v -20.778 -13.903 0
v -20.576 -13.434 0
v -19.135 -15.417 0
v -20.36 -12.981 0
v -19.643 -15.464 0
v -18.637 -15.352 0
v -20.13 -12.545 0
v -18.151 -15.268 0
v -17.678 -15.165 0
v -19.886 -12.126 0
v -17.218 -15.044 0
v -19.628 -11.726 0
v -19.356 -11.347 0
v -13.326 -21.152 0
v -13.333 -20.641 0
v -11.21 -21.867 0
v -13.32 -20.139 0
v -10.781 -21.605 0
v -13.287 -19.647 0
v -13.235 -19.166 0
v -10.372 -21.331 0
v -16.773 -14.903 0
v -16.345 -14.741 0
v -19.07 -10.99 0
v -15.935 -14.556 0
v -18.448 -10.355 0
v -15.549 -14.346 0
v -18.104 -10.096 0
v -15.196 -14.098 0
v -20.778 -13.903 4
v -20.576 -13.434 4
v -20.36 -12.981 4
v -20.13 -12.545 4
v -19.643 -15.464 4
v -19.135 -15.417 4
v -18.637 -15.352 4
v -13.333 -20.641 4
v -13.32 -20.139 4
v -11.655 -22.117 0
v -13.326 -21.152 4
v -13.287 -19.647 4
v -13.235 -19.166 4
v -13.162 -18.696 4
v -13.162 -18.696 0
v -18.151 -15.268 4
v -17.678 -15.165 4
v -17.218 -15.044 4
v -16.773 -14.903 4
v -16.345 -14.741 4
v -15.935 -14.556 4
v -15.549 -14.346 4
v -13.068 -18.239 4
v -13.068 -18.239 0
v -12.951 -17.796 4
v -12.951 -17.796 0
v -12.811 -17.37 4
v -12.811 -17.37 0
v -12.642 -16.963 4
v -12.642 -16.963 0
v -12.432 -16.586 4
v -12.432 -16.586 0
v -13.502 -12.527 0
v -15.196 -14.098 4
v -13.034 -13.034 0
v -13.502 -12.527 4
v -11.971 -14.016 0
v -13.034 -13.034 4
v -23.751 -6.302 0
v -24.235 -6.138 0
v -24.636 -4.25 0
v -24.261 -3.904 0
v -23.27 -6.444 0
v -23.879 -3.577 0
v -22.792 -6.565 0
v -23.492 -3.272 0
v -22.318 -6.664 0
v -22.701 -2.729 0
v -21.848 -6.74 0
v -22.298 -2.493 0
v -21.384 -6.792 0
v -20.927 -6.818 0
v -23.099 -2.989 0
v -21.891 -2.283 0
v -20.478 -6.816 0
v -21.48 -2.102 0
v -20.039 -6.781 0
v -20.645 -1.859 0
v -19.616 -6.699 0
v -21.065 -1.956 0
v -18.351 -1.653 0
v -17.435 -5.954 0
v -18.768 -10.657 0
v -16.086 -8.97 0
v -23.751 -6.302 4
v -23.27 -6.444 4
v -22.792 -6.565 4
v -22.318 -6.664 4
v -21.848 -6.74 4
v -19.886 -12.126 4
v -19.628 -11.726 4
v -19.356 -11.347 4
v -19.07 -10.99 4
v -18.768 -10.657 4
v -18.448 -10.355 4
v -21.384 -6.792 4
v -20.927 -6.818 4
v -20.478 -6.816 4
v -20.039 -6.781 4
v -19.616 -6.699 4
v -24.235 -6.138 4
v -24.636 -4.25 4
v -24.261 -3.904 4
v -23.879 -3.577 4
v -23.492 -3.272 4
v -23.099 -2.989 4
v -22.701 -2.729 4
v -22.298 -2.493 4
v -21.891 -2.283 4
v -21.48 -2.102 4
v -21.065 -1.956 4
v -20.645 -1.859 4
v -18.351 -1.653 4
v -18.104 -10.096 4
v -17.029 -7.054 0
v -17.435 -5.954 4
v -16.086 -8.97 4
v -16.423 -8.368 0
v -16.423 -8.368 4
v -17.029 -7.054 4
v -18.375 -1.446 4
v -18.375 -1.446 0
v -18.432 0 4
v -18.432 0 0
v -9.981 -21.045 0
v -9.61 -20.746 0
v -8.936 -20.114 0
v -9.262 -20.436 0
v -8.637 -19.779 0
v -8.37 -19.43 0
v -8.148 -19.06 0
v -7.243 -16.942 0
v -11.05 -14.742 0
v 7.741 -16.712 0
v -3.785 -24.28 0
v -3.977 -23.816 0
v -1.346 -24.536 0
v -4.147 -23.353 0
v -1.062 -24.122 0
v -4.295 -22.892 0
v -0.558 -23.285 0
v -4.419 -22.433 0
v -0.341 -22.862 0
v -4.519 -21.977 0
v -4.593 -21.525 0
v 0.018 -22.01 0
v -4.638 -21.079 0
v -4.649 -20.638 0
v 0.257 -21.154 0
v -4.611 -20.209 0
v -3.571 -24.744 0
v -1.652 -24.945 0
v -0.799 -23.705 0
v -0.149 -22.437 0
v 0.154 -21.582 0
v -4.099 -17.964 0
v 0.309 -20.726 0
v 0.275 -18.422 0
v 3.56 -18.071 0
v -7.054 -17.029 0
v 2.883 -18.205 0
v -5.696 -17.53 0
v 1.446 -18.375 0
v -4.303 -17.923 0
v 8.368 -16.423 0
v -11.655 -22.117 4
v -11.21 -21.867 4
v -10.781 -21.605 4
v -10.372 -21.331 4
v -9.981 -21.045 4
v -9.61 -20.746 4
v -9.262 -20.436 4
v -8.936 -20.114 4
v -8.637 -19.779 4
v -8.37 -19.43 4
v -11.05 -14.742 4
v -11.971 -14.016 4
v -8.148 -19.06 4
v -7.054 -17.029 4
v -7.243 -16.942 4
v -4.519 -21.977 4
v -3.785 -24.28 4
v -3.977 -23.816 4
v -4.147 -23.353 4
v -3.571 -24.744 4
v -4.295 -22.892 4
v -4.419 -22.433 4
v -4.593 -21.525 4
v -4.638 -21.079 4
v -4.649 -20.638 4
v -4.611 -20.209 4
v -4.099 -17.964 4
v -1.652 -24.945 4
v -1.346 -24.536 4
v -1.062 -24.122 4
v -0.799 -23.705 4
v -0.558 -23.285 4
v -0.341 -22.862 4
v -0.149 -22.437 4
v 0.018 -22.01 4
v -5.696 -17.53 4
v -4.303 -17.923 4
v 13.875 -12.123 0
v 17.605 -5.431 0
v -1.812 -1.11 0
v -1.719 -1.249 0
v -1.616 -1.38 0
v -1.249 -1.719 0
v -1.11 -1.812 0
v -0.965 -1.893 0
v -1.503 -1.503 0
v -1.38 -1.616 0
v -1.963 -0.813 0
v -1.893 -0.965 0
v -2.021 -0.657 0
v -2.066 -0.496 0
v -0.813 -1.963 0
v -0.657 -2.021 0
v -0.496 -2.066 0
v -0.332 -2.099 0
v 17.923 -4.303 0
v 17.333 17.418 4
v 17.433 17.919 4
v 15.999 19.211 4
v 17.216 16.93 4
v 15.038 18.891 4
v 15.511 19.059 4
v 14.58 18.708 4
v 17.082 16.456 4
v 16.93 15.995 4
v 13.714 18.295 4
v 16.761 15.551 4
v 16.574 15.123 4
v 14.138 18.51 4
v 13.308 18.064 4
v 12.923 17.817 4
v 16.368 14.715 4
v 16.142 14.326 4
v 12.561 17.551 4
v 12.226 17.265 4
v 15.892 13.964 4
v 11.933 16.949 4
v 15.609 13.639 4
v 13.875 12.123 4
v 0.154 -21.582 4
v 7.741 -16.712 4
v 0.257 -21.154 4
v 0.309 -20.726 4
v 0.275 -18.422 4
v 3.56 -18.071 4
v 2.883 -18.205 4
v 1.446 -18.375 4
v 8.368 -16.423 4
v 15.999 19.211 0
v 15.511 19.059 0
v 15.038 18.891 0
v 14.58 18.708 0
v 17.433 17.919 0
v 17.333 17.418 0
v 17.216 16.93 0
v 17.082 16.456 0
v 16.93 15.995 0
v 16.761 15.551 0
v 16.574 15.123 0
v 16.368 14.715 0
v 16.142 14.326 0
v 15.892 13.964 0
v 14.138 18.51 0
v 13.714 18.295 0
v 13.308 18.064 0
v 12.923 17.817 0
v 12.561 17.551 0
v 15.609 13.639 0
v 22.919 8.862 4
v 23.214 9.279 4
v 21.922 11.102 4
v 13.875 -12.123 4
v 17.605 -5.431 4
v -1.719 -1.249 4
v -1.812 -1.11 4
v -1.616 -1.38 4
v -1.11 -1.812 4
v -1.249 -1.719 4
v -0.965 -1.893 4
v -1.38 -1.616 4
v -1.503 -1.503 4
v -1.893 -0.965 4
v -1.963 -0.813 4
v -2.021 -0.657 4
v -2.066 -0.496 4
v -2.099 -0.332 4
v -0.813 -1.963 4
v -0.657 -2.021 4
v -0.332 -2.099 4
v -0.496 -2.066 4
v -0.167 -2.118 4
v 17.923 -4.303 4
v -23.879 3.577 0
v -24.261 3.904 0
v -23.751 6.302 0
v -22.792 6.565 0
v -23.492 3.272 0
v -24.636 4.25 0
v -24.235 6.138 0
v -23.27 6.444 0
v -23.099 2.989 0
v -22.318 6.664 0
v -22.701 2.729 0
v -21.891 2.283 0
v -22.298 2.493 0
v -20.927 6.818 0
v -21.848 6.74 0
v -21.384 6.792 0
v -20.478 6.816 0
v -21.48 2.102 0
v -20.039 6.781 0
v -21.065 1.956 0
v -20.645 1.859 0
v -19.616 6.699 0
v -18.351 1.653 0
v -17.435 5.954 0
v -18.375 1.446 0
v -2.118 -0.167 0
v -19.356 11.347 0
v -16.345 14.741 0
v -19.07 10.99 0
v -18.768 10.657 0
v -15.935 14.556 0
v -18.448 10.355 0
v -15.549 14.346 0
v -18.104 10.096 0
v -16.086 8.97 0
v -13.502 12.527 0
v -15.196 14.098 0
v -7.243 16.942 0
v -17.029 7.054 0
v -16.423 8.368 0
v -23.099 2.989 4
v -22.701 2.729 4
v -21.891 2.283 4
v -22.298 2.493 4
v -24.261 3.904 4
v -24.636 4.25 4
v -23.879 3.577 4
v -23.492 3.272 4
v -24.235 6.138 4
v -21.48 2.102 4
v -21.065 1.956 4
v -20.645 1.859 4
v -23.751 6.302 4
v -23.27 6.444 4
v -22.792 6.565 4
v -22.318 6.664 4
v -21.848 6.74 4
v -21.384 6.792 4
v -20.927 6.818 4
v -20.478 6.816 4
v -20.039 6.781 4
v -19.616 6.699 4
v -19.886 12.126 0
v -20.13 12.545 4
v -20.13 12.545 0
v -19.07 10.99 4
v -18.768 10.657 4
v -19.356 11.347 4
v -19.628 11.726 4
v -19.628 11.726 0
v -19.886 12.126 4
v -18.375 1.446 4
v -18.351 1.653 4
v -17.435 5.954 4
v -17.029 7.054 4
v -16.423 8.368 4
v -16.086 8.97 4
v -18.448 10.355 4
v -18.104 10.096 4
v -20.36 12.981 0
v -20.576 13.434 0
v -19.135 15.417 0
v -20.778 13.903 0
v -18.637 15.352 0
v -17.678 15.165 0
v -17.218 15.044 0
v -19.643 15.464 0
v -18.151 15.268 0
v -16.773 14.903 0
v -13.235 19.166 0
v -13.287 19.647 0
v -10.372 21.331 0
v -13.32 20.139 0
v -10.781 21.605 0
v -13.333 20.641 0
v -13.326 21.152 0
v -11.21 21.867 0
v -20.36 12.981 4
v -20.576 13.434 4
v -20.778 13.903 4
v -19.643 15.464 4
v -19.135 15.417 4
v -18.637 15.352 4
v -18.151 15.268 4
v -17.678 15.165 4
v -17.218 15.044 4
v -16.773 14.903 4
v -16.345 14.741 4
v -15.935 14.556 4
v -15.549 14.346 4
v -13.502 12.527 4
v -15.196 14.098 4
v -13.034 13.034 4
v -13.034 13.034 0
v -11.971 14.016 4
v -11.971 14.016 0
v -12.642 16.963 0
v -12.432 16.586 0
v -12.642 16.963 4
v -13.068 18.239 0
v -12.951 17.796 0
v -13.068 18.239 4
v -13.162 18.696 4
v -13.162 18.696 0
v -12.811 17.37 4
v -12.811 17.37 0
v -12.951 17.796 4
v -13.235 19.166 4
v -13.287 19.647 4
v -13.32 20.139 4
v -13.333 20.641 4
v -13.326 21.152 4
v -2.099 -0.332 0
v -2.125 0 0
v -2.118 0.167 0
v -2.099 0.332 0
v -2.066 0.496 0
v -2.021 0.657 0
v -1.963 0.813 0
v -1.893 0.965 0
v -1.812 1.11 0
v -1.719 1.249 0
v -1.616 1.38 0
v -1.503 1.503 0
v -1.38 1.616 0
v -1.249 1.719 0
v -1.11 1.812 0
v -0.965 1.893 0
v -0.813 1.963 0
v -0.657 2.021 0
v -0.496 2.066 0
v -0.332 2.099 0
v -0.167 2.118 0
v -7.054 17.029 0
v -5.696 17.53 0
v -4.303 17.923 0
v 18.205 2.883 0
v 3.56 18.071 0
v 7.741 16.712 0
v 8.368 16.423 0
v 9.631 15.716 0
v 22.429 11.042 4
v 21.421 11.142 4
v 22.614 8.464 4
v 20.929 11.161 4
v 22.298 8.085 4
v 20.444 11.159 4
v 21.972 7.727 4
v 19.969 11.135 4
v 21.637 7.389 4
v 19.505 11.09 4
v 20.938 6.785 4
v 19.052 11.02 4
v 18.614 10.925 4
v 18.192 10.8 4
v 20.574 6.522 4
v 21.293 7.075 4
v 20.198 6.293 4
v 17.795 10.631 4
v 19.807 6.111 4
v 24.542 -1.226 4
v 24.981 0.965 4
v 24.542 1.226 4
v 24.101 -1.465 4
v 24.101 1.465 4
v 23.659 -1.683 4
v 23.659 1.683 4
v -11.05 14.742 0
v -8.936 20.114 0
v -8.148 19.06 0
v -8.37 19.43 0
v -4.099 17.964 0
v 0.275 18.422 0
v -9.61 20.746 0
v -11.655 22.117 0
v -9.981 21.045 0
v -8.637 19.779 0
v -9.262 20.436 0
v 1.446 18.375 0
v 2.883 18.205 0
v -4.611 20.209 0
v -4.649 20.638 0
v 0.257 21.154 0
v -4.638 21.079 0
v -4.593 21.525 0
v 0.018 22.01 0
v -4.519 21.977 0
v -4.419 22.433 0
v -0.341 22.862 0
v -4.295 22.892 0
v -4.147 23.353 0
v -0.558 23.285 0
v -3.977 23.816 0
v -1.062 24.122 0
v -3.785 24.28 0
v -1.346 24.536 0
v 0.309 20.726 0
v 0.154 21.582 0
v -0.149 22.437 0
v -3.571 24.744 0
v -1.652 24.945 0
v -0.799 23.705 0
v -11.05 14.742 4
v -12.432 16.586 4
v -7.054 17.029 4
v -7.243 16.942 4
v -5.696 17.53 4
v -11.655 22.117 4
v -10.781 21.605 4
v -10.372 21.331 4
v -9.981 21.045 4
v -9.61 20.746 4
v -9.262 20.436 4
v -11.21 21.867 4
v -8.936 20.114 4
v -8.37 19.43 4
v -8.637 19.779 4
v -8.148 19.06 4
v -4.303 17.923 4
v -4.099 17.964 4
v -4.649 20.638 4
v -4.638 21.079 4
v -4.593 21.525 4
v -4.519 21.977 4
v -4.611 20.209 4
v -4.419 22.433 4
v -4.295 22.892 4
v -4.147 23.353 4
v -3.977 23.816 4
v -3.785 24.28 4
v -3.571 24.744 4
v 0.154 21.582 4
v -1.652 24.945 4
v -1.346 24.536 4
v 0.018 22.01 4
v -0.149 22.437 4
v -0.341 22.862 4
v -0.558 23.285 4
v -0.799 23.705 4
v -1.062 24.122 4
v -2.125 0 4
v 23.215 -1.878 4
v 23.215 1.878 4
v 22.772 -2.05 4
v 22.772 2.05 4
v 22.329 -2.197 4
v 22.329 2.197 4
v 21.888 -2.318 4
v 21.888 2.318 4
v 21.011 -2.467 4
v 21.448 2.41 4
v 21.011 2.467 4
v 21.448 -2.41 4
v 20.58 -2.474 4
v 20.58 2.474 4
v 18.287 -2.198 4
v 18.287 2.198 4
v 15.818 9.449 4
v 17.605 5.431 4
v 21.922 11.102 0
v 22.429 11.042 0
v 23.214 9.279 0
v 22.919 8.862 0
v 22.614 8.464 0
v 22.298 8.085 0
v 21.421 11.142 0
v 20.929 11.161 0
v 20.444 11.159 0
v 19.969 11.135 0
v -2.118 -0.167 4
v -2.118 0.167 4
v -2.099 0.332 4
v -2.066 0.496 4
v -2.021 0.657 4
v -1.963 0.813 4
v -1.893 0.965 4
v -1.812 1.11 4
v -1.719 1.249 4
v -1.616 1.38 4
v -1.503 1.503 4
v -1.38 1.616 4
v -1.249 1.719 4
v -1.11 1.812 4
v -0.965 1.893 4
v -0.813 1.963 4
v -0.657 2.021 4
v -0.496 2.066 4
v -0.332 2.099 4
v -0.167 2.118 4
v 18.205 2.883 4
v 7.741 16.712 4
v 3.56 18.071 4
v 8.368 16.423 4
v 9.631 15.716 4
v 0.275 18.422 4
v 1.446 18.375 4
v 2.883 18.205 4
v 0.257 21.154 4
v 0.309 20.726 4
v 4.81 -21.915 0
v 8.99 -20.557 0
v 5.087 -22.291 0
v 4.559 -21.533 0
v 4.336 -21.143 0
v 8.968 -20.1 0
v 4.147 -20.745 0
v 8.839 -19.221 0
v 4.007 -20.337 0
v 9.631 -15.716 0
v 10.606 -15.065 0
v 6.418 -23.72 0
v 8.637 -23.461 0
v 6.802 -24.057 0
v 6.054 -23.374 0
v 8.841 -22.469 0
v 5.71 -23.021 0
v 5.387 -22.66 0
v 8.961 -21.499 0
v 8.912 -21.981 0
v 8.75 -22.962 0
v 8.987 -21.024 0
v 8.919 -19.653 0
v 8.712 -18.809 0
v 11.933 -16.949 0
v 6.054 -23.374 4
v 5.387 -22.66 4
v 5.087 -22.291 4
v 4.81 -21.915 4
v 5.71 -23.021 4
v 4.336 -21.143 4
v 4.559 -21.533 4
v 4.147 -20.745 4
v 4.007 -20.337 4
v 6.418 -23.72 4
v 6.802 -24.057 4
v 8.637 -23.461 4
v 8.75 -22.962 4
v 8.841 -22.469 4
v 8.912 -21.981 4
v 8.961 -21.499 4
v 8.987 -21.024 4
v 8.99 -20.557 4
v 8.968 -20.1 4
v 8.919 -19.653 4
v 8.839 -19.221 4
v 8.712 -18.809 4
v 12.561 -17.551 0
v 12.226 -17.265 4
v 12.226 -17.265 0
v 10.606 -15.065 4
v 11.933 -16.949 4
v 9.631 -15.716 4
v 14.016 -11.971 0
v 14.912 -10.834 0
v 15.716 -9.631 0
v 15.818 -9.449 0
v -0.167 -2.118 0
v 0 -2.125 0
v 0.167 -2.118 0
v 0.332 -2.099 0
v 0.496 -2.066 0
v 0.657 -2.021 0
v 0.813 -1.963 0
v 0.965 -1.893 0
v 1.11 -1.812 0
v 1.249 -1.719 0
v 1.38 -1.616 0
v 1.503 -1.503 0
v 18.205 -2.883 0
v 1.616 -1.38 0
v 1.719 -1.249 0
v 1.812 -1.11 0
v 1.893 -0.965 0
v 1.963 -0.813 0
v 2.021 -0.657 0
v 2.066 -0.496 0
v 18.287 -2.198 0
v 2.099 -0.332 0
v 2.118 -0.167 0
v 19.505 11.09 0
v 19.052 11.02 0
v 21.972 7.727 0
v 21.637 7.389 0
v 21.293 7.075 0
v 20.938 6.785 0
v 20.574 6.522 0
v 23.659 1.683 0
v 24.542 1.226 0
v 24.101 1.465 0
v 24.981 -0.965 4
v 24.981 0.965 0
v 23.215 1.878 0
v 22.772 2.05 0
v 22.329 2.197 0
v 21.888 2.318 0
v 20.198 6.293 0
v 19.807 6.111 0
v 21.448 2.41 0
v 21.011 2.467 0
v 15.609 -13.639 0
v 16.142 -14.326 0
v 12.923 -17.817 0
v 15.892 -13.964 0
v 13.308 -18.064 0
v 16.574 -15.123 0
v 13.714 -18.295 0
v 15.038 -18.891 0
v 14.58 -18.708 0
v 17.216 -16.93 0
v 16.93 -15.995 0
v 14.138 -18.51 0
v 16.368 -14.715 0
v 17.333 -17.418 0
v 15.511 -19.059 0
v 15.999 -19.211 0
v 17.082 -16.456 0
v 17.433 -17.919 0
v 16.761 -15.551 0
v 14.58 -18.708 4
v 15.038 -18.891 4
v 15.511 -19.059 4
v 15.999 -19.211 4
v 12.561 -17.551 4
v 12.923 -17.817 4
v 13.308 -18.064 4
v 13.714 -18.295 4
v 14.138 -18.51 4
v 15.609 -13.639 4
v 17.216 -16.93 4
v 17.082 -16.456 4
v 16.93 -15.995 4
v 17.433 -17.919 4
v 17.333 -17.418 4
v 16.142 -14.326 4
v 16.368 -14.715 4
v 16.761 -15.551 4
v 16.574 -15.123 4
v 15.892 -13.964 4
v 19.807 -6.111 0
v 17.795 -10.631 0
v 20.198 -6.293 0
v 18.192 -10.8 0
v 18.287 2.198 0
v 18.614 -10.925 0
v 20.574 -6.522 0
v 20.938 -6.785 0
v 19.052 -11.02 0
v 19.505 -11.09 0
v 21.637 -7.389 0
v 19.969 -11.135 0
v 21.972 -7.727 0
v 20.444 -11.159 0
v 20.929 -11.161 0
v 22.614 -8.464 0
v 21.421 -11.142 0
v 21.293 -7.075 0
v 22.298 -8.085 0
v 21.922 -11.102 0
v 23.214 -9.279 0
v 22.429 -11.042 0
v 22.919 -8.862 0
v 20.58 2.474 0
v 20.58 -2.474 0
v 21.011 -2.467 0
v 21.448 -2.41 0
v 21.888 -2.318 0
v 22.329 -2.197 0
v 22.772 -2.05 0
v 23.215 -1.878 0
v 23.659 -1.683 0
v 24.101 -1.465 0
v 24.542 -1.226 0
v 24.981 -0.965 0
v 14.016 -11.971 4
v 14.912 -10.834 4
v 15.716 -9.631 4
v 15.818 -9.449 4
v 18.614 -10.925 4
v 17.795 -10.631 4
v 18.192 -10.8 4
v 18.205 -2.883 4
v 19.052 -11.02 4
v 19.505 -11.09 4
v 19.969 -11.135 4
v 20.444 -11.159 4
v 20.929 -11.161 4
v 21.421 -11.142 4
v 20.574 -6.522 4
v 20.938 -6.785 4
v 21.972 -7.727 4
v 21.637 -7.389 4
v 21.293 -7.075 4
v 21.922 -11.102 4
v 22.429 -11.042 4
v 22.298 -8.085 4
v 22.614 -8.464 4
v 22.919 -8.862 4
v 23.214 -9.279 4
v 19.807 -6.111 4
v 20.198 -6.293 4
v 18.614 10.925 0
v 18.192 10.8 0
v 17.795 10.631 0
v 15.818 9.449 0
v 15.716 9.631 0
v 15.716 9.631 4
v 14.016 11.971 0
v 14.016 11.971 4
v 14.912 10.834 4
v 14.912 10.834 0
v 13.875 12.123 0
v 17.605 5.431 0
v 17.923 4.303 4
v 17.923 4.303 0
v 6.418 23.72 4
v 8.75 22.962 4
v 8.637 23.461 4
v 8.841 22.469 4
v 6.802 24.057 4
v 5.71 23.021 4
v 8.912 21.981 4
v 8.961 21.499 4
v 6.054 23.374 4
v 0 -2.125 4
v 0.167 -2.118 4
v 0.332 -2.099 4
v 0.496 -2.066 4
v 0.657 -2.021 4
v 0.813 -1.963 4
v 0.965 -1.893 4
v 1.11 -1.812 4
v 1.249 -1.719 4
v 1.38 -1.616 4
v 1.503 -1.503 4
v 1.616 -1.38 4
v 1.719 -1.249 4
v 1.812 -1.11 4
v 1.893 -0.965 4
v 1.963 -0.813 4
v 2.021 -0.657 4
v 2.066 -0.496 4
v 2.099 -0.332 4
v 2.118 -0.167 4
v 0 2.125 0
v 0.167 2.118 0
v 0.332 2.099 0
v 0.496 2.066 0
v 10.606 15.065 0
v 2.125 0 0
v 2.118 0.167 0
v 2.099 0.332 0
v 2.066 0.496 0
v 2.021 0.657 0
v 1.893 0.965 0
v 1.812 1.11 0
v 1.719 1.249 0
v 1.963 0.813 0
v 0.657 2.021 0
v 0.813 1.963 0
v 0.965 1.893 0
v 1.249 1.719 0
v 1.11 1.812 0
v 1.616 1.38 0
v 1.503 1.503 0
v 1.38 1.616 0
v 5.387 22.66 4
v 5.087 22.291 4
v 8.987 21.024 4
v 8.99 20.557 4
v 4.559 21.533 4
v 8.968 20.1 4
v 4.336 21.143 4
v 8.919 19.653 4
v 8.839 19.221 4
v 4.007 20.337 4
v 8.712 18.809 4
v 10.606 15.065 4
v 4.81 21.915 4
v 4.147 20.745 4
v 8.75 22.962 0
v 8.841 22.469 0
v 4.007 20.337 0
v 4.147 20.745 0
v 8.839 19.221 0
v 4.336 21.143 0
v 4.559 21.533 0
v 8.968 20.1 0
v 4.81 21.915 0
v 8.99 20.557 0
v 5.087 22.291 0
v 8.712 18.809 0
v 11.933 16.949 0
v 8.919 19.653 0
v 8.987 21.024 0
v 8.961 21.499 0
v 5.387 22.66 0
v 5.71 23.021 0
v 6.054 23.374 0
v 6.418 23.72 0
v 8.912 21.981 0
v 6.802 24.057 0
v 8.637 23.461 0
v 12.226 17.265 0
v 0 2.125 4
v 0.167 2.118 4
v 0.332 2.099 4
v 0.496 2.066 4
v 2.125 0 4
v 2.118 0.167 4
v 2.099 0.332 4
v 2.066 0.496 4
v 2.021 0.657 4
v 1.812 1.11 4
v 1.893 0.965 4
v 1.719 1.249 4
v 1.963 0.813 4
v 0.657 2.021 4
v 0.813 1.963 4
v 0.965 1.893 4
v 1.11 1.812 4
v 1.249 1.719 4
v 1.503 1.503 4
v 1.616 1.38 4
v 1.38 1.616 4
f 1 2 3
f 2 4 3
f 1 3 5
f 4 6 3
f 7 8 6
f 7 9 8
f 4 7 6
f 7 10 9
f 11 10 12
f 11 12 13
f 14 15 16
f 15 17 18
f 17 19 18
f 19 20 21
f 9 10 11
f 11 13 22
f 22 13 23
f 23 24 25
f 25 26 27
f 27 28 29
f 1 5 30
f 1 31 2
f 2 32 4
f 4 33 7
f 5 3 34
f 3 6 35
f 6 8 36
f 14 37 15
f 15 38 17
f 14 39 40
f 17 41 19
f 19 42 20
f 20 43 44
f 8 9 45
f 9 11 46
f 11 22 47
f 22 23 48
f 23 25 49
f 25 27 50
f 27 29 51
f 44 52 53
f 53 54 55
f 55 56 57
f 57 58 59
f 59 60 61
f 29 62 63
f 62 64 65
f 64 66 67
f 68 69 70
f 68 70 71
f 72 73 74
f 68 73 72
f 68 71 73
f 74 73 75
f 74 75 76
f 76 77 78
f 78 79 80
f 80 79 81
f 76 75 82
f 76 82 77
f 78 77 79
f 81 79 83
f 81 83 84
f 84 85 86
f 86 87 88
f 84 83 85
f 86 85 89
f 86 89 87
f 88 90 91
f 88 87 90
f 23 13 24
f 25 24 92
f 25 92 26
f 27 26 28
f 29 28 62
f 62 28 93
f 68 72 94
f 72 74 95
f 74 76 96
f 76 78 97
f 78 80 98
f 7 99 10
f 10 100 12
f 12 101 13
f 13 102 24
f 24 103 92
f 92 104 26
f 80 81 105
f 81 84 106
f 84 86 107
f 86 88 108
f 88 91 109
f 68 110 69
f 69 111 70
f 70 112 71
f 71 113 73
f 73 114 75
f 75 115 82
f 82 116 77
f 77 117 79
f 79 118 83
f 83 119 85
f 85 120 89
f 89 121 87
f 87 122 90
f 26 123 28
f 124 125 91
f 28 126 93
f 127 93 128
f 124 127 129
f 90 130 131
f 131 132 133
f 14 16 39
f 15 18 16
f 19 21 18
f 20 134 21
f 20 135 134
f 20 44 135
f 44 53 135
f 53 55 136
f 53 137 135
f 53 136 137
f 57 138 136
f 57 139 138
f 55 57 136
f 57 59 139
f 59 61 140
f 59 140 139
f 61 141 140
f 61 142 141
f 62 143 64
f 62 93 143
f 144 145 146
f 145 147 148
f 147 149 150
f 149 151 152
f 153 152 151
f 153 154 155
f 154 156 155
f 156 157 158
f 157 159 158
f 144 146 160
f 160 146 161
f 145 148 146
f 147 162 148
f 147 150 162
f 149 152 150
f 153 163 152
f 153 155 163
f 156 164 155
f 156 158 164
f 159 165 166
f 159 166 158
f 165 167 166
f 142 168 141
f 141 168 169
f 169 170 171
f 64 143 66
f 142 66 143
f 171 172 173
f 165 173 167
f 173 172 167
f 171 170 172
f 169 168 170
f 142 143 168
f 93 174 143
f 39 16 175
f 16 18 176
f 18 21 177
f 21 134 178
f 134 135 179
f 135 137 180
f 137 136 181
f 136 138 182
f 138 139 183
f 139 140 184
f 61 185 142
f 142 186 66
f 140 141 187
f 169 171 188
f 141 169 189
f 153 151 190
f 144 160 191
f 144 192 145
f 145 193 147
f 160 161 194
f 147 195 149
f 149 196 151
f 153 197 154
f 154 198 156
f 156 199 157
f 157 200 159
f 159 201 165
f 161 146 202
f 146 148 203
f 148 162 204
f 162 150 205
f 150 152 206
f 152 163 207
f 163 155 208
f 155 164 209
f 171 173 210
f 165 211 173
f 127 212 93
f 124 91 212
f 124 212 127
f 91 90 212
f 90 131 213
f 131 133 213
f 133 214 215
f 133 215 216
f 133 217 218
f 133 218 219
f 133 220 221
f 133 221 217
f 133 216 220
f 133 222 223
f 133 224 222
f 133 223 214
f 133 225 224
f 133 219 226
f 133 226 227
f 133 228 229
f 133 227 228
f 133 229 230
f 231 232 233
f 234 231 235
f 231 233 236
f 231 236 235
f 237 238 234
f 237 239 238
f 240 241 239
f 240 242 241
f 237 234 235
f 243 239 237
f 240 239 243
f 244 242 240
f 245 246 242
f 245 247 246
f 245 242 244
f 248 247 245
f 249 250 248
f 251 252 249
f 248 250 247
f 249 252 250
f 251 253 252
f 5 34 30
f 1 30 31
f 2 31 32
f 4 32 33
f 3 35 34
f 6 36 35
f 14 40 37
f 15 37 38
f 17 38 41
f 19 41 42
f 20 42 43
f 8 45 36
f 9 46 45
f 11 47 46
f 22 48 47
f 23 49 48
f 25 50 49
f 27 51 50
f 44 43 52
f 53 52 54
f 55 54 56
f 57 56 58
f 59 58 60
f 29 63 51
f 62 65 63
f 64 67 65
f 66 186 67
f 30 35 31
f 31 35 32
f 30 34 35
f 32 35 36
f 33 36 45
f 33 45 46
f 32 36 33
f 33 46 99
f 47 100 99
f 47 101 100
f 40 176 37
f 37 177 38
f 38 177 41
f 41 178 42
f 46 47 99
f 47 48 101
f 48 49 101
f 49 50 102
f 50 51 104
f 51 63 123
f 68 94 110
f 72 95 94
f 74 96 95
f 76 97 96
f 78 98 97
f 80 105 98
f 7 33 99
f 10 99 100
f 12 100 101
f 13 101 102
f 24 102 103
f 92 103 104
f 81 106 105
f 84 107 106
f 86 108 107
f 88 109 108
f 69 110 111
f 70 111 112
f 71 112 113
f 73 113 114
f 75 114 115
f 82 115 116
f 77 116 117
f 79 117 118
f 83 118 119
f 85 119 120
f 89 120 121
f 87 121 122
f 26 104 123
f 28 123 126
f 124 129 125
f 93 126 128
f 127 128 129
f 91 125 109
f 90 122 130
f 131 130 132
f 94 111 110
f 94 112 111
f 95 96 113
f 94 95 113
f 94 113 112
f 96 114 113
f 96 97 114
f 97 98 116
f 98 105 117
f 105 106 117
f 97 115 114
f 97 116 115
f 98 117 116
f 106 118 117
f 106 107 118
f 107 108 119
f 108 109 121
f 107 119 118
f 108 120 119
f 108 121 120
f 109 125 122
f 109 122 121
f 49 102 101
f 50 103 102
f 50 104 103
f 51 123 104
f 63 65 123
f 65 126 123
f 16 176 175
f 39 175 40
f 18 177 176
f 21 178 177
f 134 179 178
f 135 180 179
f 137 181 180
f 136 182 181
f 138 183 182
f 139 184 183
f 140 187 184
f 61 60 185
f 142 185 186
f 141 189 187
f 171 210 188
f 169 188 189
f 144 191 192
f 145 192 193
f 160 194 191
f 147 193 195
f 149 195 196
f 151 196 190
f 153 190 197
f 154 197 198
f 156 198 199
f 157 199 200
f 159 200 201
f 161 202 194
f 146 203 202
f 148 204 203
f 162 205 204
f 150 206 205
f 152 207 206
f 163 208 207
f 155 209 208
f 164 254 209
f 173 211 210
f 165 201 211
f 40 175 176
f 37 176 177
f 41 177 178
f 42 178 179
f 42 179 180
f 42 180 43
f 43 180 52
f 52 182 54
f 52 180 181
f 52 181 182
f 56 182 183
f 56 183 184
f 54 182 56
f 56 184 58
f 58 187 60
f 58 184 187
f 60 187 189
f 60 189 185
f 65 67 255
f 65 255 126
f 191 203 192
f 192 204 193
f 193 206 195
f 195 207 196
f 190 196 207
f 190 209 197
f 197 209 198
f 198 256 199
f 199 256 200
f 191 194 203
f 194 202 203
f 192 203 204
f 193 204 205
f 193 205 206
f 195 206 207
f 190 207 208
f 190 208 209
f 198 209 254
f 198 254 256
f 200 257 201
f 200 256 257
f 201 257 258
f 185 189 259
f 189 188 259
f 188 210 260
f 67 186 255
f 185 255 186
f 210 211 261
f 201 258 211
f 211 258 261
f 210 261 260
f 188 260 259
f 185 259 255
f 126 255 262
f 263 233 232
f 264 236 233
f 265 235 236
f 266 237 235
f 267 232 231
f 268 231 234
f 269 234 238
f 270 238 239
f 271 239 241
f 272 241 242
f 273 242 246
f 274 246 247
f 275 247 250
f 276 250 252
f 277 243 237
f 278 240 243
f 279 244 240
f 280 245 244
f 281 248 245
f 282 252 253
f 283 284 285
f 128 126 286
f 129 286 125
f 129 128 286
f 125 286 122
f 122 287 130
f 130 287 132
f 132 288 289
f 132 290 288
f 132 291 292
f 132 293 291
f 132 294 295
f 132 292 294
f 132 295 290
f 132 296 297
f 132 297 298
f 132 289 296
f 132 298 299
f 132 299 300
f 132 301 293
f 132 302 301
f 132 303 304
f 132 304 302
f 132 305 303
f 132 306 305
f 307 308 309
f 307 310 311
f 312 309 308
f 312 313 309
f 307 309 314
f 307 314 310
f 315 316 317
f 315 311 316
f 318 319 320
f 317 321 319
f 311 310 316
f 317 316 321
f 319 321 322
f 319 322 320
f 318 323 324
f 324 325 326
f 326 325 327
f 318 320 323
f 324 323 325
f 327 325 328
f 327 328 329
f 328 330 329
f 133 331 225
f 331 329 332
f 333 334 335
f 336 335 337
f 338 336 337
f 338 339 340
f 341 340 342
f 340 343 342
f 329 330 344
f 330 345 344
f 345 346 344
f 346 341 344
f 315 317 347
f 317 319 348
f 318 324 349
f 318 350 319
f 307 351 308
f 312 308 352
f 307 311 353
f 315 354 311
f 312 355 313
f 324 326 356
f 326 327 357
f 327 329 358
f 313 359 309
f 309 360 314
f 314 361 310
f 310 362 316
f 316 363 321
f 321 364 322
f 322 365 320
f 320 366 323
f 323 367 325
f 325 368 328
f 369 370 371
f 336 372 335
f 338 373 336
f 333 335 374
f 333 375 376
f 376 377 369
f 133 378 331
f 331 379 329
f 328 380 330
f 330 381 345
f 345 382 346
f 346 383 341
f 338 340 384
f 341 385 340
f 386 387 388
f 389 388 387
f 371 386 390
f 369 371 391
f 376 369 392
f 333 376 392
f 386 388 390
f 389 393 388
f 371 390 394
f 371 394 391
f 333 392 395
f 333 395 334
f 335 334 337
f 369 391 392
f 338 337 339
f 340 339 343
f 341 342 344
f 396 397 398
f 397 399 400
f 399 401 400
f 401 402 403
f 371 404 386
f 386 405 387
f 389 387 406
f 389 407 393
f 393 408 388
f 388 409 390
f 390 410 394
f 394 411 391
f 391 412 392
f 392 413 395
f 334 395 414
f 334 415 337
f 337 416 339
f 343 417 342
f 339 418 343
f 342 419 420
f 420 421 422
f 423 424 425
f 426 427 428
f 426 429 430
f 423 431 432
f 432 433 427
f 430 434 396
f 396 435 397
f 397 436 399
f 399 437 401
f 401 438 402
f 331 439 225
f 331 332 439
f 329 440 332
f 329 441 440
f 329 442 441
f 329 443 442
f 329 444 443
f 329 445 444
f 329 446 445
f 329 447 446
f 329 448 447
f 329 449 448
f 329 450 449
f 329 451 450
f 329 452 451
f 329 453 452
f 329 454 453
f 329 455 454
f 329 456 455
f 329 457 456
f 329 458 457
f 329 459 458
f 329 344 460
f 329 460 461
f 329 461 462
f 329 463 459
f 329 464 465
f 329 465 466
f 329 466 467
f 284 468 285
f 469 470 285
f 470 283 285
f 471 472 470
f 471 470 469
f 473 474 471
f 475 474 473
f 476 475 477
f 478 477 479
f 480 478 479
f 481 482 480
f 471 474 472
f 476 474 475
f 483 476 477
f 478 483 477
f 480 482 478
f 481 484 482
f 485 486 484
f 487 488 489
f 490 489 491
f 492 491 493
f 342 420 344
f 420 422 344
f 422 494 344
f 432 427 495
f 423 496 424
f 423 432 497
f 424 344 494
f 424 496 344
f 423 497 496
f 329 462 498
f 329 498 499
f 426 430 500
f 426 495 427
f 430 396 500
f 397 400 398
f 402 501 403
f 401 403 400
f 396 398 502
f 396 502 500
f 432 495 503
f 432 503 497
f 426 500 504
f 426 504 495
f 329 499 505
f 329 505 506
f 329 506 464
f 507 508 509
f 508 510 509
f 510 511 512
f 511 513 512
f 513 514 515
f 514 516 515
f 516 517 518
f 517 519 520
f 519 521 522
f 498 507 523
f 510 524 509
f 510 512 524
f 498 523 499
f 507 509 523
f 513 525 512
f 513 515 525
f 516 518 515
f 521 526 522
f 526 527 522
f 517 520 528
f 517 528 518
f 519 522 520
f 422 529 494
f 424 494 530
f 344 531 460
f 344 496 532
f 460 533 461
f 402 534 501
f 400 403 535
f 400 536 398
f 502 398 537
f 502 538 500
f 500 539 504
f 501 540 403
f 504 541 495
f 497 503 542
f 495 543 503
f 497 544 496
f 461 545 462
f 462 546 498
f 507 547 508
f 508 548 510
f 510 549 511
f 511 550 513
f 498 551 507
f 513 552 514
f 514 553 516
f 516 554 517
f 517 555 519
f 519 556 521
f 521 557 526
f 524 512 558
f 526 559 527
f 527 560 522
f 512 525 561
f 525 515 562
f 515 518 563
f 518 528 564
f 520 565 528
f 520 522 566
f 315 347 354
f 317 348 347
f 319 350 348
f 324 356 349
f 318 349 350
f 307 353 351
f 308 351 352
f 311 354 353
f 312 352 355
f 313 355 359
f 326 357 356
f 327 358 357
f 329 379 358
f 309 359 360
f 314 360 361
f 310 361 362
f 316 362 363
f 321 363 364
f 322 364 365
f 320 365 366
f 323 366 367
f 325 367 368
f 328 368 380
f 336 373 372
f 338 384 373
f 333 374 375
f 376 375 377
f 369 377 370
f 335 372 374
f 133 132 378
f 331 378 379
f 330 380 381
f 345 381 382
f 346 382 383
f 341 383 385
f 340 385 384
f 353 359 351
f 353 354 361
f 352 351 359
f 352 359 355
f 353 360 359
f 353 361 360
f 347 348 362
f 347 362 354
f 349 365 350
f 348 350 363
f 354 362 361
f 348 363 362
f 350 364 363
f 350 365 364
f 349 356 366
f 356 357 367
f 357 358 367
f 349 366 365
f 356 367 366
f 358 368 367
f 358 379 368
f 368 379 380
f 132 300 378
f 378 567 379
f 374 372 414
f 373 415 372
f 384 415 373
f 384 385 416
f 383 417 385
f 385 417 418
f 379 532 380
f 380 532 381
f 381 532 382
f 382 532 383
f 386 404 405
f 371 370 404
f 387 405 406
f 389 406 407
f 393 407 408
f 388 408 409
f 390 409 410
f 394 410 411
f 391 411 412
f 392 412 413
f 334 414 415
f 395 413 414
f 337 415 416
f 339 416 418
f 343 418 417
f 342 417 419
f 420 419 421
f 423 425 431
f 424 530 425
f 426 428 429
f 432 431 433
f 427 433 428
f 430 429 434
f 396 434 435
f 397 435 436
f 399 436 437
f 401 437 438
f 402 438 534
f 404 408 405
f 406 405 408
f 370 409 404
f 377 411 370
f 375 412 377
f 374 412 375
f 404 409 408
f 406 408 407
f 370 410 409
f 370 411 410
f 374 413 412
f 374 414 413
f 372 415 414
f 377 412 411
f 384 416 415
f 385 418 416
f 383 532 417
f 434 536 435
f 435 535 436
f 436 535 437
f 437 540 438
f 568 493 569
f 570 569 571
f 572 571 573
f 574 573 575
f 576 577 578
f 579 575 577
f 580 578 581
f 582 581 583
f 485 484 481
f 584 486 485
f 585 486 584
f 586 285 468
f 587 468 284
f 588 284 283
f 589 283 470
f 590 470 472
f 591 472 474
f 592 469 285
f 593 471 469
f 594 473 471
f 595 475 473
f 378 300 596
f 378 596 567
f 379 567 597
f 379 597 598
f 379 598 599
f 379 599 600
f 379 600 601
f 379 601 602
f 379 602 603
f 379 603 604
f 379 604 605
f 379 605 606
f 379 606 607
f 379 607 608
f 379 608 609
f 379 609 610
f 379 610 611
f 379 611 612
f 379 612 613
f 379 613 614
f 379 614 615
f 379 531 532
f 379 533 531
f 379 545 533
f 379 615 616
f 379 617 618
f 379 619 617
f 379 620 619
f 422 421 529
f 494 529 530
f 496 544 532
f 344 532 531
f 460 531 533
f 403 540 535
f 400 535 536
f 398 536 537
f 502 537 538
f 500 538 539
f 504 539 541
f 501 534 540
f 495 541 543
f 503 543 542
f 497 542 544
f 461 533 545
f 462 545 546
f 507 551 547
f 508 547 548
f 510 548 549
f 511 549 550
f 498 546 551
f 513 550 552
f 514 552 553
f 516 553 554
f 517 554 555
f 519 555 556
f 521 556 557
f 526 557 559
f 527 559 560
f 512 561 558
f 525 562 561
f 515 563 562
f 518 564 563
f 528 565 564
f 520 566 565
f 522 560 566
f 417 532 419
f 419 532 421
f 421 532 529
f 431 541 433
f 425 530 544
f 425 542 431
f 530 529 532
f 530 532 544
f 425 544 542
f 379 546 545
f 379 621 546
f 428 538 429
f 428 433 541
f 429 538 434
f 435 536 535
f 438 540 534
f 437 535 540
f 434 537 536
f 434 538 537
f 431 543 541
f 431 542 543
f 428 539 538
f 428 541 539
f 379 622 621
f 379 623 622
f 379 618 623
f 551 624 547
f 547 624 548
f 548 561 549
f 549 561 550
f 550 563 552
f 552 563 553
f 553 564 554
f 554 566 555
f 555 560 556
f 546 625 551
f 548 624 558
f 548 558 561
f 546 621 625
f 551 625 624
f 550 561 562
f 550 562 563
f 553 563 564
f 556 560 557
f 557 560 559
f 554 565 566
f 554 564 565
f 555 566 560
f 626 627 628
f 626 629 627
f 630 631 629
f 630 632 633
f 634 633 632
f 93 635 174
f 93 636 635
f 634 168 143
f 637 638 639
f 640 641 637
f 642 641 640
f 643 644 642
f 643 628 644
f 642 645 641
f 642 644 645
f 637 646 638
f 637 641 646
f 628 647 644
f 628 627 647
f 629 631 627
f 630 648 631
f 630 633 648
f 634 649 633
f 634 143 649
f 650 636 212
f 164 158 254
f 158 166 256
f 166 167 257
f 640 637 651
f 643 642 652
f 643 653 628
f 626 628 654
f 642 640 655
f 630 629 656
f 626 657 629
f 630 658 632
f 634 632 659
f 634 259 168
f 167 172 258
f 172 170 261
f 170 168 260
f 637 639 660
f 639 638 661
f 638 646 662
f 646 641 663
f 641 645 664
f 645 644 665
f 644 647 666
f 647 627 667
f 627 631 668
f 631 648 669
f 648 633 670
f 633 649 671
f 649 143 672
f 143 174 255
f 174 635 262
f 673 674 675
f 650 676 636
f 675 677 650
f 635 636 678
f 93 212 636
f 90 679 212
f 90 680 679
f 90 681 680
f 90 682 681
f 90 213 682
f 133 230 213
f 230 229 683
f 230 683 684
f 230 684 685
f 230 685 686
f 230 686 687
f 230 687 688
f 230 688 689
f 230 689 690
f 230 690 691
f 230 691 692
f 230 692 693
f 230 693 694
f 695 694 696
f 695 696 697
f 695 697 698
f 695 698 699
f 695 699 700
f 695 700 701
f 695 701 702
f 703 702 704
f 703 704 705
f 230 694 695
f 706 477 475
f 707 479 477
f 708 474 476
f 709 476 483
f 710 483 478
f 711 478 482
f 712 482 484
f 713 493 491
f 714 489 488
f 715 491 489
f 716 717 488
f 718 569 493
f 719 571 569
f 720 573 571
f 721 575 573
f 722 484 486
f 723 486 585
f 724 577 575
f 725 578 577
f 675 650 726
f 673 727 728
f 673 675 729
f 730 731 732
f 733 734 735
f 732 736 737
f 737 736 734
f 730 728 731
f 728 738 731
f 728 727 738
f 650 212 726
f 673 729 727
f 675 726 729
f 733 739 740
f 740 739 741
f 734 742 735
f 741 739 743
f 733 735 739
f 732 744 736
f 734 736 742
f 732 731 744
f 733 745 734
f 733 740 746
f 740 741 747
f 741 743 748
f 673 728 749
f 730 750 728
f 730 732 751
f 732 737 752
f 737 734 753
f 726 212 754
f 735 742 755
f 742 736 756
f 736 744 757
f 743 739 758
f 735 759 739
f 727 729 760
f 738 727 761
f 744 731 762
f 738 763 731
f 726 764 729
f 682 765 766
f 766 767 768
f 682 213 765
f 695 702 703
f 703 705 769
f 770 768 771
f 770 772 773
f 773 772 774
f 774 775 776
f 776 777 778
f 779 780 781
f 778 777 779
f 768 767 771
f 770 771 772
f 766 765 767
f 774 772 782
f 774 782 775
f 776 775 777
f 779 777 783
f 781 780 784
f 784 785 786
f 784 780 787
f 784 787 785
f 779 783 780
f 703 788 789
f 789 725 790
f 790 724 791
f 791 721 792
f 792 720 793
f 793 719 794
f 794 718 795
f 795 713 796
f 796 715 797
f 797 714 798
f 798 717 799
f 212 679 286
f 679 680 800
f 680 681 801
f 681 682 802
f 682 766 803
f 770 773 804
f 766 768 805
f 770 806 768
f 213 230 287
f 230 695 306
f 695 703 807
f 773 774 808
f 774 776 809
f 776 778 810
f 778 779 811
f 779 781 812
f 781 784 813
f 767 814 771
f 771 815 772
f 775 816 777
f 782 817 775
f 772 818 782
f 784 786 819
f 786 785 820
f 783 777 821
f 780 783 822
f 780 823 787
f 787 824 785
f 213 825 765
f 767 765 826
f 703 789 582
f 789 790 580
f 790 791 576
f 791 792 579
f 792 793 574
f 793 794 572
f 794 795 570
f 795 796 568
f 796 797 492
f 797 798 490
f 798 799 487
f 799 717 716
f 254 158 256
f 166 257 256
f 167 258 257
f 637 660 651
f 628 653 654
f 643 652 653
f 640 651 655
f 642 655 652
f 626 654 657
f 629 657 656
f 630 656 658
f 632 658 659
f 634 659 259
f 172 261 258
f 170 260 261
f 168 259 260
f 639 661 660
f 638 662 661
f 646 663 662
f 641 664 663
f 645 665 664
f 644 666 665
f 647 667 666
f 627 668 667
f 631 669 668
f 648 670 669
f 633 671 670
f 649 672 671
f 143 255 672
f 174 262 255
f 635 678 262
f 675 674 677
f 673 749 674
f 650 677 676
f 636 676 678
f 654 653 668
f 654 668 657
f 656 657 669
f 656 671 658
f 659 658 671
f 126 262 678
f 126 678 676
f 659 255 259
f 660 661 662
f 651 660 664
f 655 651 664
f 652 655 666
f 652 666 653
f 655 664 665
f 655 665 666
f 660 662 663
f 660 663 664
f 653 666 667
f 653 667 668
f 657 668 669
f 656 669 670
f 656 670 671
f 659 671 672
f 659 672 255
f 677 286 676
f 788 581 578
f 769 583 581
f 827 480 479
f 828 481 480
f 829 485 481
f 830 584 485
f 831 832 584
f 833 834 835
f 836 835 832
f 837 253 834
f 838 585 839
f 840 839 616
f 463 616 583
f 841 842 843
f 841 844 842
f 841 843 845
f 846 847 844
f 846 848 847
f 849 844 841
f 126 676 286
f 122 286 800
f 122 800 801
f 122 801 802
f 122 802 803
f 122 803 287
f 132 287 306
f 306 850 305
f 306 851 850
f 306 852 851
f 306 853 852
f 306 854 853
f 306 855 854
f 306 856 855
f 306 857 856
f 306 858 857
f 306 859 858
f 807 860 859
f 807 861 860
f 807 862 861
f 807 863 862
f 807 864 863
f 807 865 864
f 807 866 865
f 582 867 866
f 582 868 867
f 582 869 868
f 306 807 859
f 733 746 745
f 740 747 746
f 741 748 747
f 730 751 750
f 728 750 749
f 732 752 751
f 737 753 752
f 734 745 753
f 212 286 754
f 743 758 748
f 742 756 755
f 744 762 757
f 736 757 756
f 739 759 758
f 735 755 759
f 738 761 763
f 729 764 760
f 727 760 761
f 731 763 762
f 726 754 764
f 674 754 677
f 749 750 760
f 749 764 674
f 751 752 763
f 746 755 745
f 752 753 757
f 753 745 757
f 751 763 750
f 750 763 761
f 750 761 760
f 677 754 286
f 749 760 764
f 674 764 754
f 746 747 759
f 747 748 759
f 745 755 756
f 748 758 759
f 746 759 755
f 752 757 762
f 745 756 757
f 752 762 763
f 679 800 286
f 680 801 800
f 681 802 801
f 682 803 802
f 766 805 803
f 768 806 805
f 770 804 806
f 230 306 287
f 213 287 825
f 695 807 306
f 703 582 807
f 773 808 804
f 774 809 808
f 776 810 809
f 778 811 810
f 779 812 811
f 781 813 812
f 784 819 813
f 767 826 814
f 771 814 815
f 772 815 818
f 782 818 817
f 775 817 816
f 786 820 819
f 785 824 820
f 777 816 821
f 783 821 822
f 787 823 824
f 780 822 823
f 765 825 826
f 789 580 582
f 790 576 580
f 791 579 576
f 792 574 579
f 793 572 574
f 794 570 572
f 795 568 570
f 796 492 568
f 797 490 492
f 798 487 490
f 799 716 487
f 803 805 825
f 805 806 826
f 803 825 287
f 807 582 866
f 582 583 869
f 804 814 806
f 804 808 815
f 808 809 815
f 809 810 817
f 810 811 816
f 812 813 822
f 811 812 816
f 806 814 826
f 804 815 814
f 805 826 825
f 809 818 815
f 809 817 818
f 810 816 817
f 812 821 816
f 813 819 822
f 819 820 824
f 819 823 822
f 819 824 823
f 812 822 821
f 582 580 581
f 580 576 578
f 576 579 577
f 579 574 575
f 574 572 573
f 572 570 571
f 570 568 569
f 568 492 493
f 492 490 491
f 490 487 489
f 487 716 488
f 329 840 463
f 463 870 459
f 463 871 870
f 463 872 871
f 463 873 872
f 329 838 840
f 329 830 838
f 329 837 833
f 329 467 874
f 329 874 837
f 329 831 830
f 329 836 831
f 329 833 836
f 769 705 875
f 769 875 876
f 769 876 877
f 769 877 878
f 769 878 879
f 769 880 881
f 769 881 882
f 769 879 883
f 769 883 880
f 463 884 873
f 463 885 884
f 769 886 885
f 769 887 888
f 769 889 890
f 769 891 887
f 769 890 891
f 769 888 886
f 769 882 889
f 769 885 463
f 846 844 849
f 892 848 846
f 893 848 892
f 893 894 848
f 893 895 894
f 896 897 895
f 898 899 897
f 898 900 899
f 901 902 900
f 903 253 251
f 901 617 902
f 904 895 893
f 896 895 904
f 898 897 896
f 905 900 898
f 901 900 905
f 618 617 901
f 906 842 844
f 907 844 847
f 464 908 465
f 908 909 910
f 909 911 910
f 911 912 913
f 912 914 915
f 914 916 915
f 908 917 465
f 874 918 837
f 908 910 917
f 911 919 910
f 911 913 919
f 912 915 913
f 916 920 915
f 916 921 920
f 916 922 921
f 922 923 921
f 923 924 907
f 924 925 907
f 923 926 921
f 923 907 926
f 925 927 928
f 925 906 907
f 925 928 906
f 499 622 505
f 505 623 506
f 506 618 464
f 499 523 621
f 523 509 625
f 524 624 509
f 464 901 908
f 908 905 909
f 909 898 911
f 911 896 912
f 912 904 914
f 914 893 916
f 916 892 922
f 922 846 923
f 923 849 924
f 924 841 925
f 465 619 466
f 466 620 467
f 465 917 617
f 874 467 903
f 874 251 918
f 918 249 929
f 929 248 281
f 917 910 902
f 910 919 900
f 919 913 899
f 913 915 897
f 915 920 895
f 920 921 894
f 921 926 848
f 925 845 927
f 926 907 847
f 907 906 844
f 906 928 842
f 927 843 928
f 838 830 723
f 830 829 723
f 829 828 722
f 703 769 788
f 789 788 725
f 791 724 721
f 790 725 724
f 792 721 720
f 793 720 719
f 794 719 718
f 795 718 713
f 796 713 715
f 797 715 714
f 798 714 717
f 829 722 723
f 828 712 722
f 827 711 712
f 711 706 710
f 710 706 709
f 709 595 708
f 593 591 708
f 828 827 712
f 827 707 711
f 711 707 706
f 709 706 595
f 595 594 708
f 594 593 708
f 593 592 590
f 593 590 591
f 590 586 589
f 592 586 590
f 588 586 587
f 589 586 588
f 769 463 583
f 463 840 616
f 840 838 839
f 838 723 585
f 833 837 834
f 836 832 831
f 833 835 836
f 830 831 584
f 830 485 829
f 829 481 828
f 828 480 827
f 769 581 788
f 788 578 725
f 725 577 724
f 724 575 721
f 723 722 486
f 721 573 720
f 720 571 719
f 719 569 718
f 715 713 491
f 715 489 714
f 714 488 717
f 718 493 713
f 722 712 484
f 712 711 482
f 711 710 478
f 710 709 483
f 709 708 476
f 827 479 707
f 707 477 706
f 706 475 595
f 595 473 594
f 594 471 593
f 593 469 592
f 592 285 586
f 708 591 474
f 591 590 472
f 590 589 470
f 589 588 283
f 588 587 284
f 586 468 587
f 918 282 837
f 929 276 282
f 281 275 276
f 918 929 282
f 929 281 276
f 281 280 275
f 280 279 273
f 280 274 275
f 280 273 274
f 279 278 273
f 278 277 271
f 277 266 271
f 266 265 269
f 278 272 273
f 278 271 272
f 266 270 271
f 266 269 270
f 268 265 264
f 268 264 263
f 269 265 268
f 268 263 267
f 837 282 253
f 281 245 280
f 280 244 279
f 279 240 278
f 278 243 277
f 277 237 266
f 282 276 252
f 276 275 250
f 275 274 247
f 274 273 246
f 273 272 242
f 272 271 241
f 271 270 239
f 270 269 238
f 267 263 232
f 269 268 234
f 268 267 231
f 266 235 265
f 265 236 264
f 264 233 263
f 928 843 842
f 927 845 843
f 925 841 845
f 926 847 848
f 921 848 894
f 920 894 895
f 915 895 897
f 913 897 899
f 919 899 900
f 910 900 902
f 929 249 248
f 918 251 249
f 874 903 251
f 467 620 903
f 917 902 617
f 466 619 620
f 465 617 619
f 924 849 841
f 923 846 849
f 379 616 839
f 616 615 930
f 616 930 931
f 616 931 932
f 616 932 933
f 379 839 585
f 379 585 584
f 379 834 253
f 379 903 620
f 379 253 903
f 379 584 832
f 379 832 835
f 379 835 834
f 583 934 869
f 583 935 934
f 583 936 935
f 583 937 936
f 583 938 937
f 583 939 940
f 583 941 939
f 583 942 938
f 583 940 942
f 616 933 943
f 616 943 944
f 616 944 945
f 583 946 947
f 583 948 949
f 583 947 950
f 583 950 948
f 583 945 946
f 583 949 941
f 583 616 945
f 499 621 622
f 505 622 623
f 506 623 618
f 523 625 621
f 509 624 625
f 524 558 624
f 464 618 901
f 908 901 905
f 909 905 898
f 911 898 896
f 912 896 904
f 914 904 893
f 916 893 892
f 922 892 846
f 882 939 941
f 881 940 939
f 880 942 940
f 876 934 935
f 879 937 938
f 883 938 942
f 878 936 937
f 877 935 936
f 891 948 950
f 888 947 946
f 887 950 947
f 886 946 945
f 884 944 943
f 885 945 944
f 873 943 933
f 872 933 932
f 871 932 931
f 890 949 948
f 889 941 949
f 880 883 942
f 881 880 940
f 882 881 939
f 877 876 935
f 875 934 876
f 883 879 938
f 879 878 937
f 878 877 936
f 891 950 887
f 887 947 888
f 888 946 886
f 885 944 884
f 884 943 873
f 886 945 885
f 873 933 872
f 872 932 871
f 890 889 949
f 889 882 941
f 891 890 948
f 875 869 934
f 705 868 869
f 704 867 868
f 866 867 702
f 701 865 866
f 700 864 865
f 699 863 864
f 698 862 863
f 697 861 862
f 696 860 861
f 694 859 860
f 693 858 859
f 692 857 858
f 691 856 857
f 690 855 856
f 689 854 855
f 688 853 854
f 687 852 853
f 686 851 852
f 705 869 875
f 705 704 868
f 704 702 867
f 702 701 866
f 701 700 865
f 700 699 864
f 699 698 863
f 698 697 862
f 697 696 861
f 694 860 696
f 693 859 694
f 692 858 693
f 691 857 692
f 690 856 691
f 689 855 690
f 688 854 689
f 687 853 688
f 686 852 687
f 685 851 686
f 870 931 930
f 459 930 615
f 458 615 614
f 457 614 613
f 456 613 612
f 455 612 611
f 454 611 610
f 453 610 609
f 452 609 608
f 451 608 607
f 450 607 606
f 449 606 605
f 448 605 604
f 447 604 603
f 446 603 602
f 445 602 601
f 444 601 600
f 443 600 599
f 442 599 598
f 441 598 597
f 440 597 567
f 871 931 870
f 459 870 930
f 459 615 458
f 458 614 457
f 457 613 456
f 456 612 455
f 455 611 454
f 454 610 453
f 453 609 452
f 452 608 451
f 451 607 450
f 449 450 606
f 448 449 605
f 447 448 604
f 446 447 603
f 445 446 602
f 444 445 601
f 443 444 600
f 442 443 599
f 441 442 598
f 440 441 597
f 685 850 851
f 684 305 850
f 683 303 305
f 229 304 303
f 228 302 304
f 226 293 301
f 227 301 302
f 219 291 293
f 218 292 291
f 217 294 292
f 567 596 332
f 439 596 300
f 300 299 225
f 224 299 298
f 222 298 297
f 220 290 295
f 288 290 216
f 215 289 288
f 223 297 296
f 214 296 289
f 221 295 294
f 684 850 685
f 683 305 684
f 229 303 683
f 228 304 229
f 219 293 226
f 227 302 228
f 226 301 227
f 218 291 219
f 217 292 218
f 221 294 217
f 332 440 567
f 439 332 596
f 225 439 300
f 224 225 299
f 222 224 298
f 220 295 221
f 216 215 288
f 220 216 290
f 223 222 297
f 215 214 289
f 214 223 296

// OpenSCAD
// ==========================================
// PARÁMETROS DEL ENGRANAJE (Medidas en mm)
// ==========================================
num_dientes = 15;          // 15 dientes (como en la Figura 10.29)
diametro_exterior = 50.0;  // 5 cm de diámetro total (de punta a punta)
grosor = 4.0;              // Espesor del engranaje (4 mm)
diametro_eje = 4.0;        // Varilla metálica M4
tolerancia_eje = 0.25;     // Holgura para impresión 3D (4.25 mm reales)
angulo_presion = 20;       // Estándar (20 grados)

$fn = 80;

// ==========================================
// CÁLCULOS GEOMÉTRICOS
// ==========================================
modulo = diametro_exterior / (num_dientes + 2);
diametro_primitivo = modulo * num_dientes;

// ==========================================
// GENERACIÓN DE LA PIEZA FINAL
// ==========================================
difference() {
    engranaje_recto(
        m = modulo,
        z = num_dientes,
        h = grosor,
        pa = angulo_presion
    );
    
    // Agujero central para la varilla M4
    translate([0, 0, -1])
        cylinder(d = diametro_eje + tolerancia_eje, h = grosor + 2);
}

// ==========================================
// FUNCIONES Y MÓDULOS DE GEOMETRÍA
// ==========================================
function rad2deg(rad) = rad * 180 / PI;
function deg2rad(deg) = deg * PI / 180;
function involuta_rad(alpha_deg) = tan(alpha_deg) - deg2rad(alpha_deg);

module engranaje_recto(m, z, h, pa) {
    r_p = (m * z) / 2;          // Radio primitivo (22.06 mm)
    r_b = r_p * cos(pa);        // Radio base (20.73 mm)
    r_a = r_p + m;              // Radio exterior o de cabeza (25.00 mm)
    r_f = r_p - 1.25 * m;       // Radio de raíz o de pie (18.38 mm)
    
    linear_extrude(height = h, convexity = 10) {
        union() {
            // Disco base hasta el círculo de raíz
            circle(r = r_f + 0.05);
            
            // Repetición de los 15 dientes alrededor del centro
            for (i = [0 : z - 1]) {
                rotate([0, 0, i * (360 / z)])
                    diente_solido(r_b, r_p, r_a, r_f, z, pa);
            }
        }
    }
}

module diente_solido(r_b, r_p, r_a, r_f, z, pa) {
    pasos = 10;
    r_inicio = max(r_b, r_f);
    
    // Medio ángulo del diente en el círculo base (en grados)
    medio_ang_base = (90 / z) + rad2deg(involuta_rad(pa));
    
    // 1. Flanco inferior: sube desde la raíz (i=0) hasta la punta (i=pasos)
    // Ángulo negativo (debajo del eje X)
    flanco_inf = [
        for (i = [0 : pasos])
            let(
                r = r_inicio + (r_a - r_inicio) * (i / pasos),
                alpha = acos(min(1, r_b / r)),
                theta = -(medio_ang_base - rad2deg(involuta_rad(alpha)))
            )
            [r * cos(theta), r * sin(theta)]
    ];
    
    // 2. Flanco superior: baja desde la punta (i=pasos) hasta la raíz (i=0)
    // Ángulo positivo (encima del eje X)
    flanco_sup = [
        for (i = [pasos : -1 : 0])
            let(
                r = r_inicio + (r_a - r_inicio) * (i / pasos),
                alpha = acos(min(1, r_b / r)),
                theta = (medio_ang_base - rad2deg(involuta_rad(alpha)))
            )
            [r * cos(theta), r * sin(theta)]
    ];
    
    // Puntos de unión en la raíz (si el radio de raíz es menor que el base)
    raiz_inf = (r_f < r_b) ? [[r_f * cos(-medio_ang_base), r_f * sin(-medio_ang_base)]] : [];
    raiz_sup = (r_f < r_b) ? [[r_f * cos(medio_ang_base), r_f * sin(medio_ang_base)]] : [];
    
    // Recorrido continuo en sentido antihorario sin cruces:
    // Centro -> Raíz inferior -> Flanco inferior (sube) -> Flanco superior (baja) -> Raíz superior
    polygon(concat([[0, 0]], raiz_inf, flanco_inf, flanco_sup, raiz_sup));
}
